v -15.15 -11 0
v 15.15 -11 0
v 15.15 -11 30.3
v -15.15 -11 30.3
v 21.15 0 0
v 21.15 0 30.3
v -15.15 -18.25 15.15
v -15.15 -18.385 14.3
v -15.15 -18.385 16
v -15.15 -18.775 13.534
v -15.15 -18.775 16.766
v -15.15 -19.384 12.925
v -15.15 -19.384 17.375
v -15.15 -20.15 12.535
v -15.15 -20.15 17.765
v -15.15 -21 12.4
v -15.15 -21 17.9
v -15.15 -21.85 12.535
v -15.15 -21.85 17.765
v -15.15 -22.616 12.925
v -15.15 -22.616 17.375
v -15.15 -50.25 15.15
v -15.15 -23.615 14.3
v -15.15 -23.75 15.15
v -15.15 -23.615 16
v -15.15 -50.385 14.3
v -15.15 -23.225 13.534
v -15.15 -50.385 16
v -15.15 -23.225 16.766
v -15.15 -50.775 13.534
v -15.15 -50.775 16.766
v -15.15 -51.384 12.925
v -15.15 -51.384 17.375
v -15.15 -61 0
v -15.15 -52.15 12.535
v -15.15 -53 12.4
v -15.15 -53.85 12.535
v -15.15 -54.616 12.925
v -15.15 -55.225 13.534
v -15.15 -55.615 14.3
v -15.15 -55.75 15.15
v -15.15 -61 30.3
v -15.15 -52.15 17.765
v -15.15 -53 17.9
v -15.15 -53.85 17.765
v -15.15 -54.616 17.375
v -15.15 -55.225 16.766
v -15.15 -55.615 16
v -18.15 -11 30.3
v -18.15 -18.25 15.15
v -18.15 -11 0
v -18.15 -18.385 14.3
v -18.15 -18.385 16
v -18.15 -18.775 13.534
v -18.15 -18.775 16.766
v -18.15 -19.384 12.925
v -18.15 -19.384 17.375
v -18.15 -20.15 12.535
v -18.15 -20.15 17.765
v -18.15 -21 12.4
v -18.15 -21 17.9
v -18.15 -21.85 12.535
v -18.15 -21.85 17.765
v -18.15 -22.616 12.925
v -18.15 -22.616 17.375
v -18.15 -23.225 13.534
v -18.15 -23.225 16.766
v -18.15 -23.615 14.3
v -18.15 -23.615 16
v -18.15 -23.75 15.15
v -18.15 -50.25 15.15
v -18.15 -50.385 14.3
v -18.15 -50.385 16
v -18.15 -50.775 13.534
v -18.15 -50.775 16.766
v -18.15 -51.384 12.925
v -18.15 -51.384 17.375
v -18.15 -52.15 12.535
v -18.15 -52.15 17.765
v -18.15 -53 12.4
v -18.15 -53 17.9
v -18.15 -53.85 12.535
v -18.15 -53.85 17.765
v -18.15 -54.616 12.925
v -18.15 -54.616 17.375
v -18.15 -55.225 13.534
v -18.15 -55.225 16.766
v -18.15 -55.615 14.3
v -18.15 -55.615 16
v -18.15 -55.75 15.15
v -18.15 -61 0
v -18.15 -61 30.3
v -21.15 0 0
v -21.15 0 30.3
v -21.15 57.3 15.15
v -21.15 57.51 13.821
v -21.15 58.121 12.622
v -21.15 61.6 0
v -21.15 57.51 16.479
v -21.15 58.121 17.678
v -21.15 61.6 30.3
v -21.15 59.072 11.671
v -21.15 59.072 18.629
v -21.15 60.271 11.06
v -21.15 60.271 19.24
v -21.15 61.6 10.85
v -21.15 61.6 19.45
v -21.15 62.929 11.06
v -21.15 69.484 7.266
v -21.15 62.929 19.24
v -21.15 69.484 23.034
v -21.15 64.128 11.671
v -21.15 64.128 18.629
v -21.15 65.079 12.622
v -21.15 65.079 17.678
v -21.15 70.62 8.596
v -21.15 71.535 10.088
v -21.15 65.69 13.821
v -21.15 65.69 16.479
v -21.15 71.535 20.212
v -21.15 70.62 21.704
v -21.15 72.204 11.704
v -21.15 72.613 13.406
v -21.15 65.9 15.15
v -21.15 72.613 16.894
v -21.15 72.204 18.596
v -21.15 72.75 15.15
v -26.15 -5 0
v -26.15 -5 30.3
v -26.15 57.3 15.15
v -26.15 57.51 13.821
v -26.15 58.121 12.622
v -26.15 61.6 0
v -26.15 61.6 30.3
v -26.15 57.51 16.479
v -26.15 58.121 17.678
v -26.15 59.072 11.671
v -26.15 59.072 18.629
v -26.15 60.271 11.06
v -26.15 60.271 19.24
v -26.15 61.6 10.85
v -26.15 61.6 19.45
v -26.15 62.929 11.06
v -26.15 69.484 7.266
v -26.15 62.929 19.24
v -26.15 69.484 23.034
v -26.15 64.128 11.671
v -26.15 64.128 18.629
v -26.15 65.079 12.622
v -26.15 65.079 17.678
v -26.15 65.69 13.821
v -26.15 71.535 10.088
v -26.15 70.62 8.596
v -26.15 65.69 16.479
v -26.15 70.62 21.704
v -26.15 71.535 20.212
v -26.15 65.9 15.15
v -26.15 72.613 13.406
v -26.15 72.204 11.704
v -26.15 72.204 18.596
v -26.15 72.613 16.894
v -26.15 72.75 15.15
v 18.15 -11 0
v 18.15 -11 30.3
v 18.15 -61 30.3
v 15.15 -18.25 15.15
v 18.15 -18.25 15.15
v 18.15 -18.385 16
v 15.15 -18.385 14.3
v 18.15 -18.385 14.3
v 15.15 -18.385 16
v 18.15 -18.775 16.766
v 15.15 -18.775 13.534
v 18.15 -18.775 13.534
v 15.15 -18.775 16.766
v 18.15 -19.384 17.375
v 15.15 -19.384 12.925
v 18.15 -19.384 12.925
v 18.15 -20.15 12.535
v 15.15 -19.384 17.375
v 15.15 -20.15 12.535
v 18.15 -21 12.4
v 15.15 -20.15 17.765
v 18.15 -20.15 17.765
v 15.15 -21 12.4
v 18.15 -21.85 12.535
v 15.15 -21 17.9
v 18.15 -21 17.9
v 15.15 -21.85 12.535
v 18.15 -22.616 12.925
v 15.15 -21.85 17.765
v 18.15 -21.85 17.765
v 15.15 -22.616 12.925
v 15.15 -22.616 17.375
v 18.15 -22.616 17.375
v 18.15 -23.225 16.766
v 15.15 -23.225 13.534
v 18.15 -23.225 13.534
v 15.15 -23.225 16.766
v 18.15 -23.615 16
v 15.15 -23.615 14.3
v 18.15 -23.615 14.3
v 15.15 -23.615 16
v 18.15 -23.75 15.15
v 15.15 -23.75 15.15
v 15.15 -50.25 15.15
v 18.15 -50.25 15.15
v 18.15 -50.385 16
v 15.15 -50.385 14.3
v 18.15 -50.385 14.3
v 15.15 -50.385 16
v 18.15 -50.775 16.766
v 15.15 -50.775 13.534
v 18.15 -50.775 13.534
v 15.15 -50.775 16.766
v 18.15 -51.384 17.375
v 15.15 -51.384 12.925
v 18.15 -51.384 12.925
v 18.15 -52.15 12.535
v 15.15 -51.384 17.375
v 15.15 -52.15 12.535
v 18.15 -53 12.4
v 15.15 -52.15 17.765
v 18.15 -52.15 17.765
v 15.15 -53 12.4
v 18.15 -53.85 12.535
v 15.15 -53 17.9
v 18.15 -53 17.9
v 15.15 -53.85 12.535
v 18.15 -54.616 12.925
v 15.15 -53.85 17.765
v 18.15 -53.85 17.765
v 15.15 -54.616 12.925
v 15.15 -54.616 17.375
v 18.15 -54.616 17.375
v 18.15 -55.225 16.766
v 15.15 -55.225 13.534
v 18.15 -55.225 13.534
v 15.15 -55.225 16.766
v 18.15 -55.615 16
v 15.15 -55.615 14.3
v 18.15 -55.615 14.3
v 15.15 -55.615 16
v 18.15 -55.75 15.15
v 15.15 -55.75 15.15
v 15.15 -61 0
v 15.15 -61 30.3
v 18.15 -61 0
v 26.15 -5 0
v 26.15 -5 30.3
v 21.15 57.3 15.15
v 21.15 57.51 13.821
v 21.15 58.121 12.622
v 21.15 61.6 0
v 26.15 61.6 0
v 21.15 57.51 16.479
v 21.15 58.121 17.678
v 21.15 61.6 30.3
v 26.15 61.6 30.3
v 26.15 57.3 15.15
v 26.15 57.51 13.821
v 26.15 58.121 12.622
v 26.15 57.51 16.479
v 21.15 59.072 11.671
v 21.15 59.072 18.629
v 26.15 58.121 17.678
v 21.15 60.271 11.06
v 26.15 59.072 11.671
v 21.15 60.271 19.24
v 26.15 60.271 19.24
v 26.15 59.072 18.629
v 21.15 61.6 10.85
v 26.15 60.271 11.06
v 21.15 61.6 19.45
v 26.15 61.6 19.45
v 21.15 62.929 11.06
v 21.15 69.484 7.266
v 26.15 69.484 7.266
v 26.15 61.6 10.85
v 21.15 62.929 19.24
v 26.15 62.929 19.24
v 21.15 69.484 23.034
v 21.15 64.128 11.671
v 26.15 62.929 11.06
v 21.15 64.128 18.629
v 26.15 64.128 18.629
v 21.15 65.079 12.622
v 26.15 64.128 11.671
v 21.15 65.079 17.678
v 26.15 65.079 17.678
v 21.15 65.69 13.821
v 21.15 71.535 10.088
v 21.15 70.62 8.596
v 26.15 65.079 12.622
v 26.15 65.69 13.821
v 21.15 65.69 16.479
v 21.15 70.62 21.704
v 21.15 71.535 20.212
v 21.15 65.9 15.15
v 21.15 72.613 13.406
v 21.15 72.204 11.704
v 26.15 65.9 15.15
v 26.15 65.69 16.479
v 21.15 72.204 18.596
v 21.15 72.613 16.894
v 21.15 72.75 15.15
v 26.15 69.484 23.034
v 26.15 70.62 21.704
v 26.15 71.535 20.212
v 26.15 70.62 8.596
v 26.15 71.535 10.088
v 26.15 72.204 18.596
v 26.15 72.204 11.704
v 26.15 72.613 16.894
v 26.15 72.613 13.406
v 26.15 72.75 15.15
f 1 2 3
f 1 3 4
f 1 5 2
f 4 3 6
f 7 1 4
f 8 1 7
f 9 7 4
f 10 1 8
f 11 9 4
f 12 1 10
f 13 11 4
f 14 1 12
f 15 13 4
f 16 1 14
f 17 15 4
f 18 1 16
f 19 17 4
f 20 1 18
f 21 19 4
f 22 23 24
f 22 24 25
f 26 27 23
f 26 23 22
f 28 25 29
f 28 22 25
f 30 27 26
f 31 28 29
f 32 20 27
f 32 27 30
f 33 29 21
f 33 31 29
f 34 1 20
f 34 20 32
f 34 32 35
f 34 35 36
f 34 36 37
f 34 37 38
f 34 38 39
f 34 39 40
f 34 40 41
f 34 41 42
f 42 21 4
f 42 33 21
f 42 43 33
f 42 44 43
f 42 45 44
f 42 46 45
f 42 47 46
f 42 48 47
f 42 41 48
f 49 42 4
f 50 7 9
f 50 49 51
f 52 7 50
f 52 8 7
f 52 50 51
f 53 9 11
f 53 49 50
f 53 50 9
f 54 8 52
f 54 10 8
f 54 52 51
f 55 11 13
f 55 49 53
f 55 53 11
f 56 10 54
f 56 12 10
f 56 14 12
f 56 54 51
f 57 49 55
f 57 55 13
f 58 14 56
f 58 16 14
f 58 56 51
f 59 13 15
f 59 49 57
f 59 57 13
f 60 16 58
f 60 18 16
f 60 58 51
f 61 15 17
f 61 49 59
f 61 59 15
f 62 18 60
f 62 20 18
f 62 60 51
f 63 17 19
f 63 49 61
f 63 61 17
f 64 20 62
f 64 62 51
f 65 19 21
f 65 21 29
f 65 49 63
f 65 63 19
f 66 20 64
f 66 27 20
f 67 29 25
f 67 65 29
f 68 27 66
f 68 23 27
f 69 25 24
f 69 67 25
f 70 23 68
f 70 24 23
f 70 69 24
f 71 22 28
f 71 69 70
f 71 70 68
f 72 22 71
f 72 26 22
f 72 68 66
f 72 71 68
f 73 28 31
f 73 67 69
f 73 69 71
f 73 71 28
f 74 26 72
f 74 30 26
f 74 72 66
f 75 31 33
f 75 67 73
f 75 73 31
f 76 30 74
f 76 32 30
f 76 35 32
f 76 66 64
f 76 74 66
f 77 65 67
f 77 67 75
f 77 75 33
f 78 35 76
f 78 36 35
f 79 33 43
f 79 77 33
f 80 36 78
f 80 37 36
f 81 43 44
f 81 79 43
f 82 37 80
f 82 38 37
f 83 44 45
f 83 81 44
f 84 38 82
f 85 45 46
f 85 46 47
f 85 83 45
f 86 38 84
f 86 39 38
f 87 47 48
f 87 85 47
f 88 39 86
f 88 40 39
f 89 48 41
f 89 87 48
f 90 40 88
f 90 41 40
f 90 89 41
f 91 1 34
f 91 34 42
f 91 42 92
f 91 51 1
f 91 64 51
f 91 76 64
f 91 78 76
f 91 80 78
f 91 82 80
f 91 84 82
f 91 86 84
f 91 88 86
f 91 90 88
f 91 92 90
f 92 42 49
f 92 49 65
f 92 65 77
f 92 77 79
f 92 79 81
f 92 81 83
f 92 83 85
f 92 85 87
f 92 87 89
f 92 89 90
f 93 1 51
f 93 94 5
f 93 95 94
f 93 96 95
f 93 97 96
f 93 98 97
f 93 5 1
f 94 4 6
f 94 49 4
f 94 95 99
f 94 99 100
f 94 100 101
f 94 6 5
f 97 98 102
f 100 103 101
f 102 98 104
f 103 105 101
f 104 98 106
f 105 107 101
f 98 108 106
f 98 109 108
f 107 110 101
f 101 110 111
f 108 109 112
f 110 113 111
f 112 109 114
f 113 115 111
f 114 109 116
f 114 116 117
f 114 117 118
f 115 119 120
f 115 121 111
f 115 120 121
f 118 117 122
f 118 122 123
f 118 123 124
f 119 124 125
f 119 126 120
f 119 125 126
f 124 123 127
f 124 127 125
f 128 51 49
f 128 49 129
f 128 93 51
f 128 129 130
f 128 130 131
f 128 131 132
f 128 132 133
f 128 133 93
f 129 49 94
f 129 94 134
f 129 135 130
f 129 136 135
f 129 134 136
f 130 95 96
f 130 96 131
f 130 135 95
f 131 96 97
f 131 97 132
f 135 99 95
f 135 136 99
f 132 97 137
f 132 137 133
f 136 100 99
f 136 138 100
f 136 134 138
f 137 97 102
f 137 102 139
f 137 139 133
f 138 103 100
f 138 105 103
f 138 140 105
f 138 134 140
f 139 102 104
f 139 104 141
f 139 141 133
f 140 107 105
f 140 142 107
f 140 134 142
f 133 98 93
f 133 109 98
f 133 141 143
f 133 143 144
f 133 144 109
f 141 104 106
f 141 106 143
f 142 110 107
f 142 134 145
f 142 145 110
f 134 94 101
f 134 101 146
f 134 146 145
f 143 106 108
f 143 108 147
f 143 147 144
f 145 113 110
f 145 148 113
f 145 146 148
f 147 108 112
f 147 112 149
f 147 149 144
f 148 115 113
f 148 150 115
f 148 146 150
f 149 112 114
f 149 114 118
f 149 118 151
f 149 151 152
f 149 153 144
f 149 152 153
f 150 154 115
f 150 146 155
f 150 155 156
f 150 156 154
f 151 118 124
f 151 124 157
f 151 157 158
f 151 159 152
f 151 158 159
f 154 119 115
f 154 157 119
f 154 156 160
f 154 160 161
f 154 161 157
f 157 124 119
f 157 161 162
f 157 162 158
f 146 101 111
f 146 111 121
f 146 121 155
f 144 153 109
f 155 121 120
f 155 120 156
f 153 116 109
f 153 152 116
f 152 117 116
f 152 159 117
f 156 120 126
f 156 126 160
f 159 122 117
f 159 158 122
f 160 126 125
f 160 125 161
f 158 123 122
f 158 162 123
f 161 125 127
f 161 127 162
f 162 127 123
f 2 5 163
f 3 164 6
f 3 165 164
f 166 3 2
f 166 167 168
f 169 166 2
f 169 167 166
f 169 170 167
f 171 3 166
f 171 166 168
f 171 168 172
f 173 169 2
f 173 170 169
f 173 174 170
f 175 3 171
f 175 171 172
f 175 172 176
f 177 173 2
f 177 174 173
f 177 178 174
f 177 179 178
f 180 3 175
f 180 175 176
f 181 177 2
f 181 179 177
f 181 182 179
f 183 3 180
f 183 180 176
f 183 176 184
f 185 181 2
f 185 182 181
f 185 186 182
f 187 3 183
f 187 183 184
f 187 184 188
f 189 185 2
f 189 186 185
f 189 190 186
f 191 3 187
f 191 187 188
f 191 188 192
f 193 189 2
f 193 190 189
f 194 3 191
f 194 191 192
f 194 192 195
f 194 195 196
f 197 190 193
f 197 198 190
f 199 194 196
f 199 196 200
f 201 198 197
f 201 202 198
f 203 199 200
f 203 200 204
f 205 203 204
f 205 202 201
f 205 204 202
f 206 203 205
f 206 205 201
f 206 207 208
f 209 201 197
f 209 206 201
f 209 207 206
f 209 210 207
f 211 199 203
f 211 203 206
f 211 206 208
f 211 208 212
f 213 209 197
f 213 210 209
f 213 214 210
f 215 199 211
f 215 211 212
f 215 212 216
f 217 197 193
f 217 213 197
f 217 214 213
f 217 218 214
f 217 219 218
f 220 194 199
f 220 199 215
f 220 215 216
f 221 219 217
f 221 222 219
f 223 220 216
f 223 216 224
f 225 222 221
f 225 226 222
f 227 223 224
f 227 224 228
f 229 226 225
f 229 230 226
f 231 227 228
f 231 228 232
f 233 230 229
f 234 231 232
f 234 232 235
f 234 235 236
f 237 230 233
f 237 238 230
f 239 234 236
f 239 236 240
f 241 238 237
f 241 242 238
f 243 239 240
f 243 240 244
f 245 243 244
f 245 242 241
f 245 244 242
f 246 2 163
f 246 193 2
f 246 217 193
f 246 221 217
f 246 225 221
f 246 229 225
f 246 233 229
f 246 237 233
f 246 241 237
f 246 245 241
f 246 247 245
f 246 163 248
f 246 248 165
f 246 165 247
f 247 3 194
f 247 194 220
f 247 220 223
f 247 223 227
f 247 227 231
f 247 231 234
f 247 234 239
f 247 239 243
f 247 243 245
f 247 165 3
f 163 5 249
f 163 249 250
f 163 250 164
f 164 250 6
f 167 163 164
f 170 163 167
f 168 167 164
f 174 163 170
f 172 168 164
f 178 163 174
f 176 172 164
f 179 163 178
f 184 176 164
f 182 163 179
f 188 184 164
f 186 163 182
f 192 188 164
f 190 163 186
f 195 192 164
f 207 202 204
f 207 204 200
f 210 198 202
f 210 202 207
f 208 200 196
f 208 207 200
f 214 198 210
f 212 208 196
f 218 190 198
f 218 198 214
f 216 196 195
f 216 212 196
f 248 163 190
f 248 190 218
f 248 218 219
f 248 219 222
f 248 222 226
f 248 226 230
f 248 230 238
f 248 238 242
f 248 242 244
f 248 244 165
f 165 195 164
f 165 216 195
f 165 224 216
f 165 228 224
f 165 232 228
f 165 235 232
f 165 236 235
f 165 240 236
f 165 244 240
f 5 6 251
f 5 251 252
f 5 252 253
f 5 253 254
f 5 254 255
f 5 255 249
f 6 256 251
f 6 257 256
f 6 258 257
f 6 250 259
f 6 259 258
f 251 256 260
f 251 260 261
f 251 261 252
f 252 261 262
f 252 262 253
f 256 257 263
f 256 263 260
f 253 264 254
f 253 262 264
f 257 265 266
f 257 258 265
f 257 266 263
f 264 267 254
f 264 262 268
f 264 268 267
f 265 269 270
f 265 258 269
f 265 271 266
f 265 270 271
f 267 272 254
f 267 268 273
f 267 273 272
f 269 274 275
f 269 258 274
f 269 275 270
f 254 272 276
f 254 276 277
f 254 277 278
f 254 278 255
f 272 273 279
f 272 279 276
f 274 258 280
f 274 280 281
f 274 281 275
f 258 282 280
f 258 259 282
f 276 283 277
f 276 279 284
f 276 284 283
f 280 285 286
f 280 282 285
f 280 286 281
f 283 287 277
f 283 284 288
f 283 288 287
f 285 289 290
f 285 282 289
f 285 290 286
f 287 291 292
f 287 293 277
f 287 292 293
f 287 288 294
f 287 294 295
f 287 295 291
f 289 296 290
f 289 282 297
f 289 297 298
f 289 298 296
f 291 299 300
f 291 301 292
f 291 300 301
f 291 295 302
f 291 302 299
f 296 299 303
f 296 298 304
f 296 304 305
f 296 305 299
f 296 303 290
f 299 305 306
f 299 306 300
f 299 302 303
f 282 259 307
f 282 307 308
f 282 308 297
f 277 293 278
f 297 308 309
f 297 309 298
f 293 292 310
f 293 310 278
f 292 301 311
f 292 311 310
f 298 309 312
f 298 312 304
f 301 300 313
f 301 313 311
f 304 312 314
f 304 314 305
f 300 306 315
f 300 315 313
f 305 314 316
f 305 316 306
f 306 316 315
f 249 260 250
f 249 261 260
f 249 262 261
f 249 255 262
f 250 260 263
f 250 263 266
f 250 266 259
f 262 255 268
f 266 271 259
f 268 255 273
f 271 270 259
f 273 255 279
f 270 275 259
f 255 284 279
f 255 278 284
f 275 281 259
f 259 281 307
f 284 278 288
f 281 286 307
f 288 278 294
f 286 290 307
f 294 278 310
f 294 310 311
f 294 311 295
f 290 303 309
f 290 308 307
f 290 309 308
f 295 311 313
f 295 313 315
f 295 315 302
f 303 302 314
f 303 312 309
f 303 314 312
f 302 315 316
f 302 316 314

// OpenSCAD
// file: ../lib/ALU_profile_holder_top.scad
include <../../parameters.scad>



module ALU_profile_holder_top(deep=35) {
    wall_thickness = ALU_profile_holder_wall_thickness;
    
    module screw_holes() {
        translate([wall_thickness/2, 8, ALU_profile_width/2]) {
            rotate([0, 90, 0]) 
                cylinder(d=M5_screw_diameter, h=wall_thickness*2, center=true, $fn=20);
        }
        translate([wall_thickness/2, deep-10, ALU_profile_width/2]) {
                rotate([0, 90, 0])
                cylinder(d=M5_screw_diameter, h=wall_thickness*2, center=true, $fn=20);
            
        }
    }
    
    difference() {
        cube([ALU_profile_width+wall_thickness*2, deep+wall_thickness*2, ALU_profile_width]);
        translate([wall_thickness, -0.1, -0.1])
            cube([ALU_profile_width, deep+0.1, ALU_profile_width+0.2]);
        
        screw_holes();
        translate([ALU_profile_width+wall_thickness, 0, 0])
            screw_holes();
    }
}

ALU_profile_holder_top(35);
// file: ../../parameters.scad
maximum_printable_size = 150;

layer_thickness = 0.3;
global_clearance = 0.5;

platform_base_diameter = 400; // Průměr ukotvení válců spodní platformy
platform_base_thickness = 20;
platform_cylinder_medium_length = 250;  // délka pneumatického válce s pístem vysunutým do poloviny rozsahu
platform_base_cylinder_spacing = 38;    //rozestupy spodního a horního ukotvení válců.
platform_top_cylinder_spacing = 30;
platform_top_diameter = 150;   // Průměr horní základny (vdálenost od středu základny do středu kulového kloubu ke kterému je uchycen pneumatický válec)


// screw length step - minimum difference in length between two types of screws
basic_screw_length = 5;


//Screw diameter and nut for M10 [mm]
M10_screw_diameter = 10.4;
M10_head_height = 10;
M10_head_diameter = 16+0.5;
M10_nut_height = 10.5;
M10_nut_diameter = 25.5;
M10_nut_pocket = 22.3;

//Screw diameter for M8 [mm]
M8_screw_diameter = 8.6;
M8_head_height = 8;
M8_head_diameter = 13.5;
M8_nut_height = 7.5;
M8_nut_diameter = 14.4 + 0.5;
M8_nut_pocket = 13 + 0.5;
M8_washer_diameter = 16;
M8_washer_thickness = 1.5;


//Screw diameter and nut for M6 [mm]
M6_screw_diameter=6.5;
M6_head_diameter = 10+0.5;
M6_head_height = 6;
M6_nut_height = 4.9;
M6_nut_diameter = 11.8;
M6_nut_pocket = 10.4;
M6_square_nut_height = 3;
M6_square_nut_diameter = 10;

//Screw diameter and nut for M5 [mm]
M5_screw_diameter=5.5;
M5_head_height = 5;
M5_head_diameter = 13+0.5;
M5_nut_height = 4.5;
M5_nut_diameter = 9.4;
M5_nut_pocket = 8.4;

//Screw diameter and nut for M4 [mm]
M4_screw_diameter=4.5;
M4_screw_head_height = 4;
M4_nut_height = 3.2;
M4_nut_diameter = 8.4;
M4_nut_pocket = 7.5;

//Screw diameter and nut for M3 [mm]
M3_screw_diameter = 3.2;
M3_nut_height = 2.7;
M3_nut_diameter = 6.6;
M3_screw_head_height = 3;

//Screw diameter and nut for M2,5 [mm]
M2_5_screw_diameter = 2.7;
M2_5_nut_height = 2.3;
M2_5_nut_diameter = 6;
M2_5_nut_pocket = 5.5;

// kulove lozisko

bearing_efsm_08_h = 33+1;
bearing_efsm_08_m = 22;
bearing_efsm_08_db = 18;
bearing_efsm_08_ag = 10.5;
bearing_efsm_08_n = M4_screw_diameter;
bearing_efsm_08_a1 = 5.5;
bearing_efsm_08_d = 8.25;
bearing_efsm_08_B = 8; // ball height

bearing_efsm_10_h = 38+1;
bearing_efsm_10_m = 26;
bearing_efsm_10_db = 21.9;
bearing_efsm_10_ag = 12+0.2;
bearing_efsm_10_n = M5_screw_diameter;
bearing_efsm_10_a1 = 6.5;
bearing_efsm_10_d = 10.25;


bearing_efsm_12_width = 40+1;
bearing_efsm_12_h = bearing_efsm_12_width;
bearing_efsm_12_boltd = 28/2; // polovina vzdalenosti mezi srouby
bearing_efsm_12_m = bearing_efsm_12_boltd*2;
bearing_efsm_12_db = 25;
bearing_efsm_12_ag = 13;
bearing_efsm_12_a1 = 7;
bearing_efsm_12_n = M5_screw_diameter;
bearing_efsm_12_d = 12.15;
bearing_efsm_12_B = 10; // ball height
bearing_efsm_space = 1;

bearing_efsm_17_width = 54+1;
bearing_efsm_17_h = bearing_efsm_17_width;
bearing_efsm_17_boltd = 38/2; // polovina vzdalenosti mezi srouby
bearing_efsm_17_m = bearing_efsm_17_boltd*2;
bearing_efsm_17_db = 35;
bearing_efsm_17_ag = 18;
bearing_efsm_17_n = M6_screw_diameter;
bearing_efsm_17_a1 = 10;
bearing_efsm_17_B = 17; // ball height

//limcove lozisko
bearing_EFOM_10_L=26; //celkova sirka zakladny
bearing_EFOM_10_d1=10.3;//diametr otvoru real=10 mm
bearing_EFOM_10_dB=22;//diametr vystupku pro ulozeni lozika
bearing_EFOM_10_H=52;//celková delka zakladny
bearing_EFOM_10_J=36;// hole pitch
bearing_EFOM_10_A1=6.5;//vyska pouzdra
bearing_EFOM_10_Ag=12;//celkova vyska
bearing_EFOM_10_N1=5;//sirka otvoru pro sroub
bearing_EFOM_10_N2=8;//delka otvoru pro sroub
bearing_EFOM_10_m=36;//roztec der pro sroub
bearing_EFOM_10_h=9;//vyska lozika


608_bearing_outer_diameter = 22.3;
608_bearing_inner_diameter = 16;
608_bearing_thickness = 7.1;


// 20 KG servo parameters

servo_20kg_axis_offset = 9.375; // jak je osa mimo stredu
servo_20kg_body_x = 42;
servo_20kg_body_y = 21;
servo_20kg_body_z = 40;
servo_20kg_thread_x = 49/2;
servo_20kg_thread_y = 10/2;
servo_20kg_body_below = 10; // jak hluboko je tělo serva pod drzaky na srouby
servo_20kg_below = 25.8; // jak hluboko je páka serva pod drzaky na srouby

servo_20kg_bolt_d = 2.5+0.3;
servo_20kg_nut_d = 5+0.3;


//strain gauge
strain_gauge_width = 12.7;
strain_gauge_length = 75.1;
strain_gauge_screw_distance = 10;

//ALU profile
ALU_profile_width = 30.3;
ALU_profile_holder_wall_thickness = 3;
ALU_profile_groove_width = 8;

//pillow block bearing
//https://www.igus.eu/product/372
//Part no. KSTM-08
KSTM08_screws_distance = 33;         //m
KSTM08_screws_holes_diameter = 4.5;  //d2
KSTM08_flange_thickness = 6;         //h3
KSTM08_case_width = 9;               //C1
KSTM08_case_length = 47;             //a
KSTM08_ball_width = 12;              //B


//ložiska pro malý rotor
bearing_outer_diameter = 10.2;    // Rozměr B1 v nákresu s přídavkem na toleranci otvoru
bearing_thickness = 4;        // Rozměr B2 v nákresu
//bearing_shaft_length = 19.5;    // Rozměr B3 v nákresu, Originalni hodnota 19.5
bearing_shaft_length = 20;    // Rozměr B3 v nákresu


//parametry víčka s telemetrickou anténou
S01_sila_materialu=1.2;
S01_vyska_horni_zavit=10;
S01_hloubka_zavitu=4;
S01_prumer_vnitrni=50;
LO_spodni_prumer=17.2;
LO_vyska_bez_krytu=15;
S01_tolerance_zavit=1.5;
R01_vyska_prekryti_statoru=10;
// main file
include <../../parameters.scad>
use <../lib/ALU_profile_holder_top.scad>

module 888_5011() {
    height = ALU_profile_width+608_bearing_outer_diameter-2+ALU_profile_holder_wall_thickness*2+5;

    translate([-ALU_profile_width/2-ALU_profile_holder_wall_thickness, -55-ALU_profile_holder_wall_thickness*2, 0])
        ALU_profile_holder_top(50);

    difference() {
        hull() {
            translate([(ALU_profile_width+ALU_profile_holder_wall_thickness*2+16)/-2, -5, 0])
                cube([ALU_profile_width+ALU_profile_holder_wall_thickness*2+16, height+5, ALU_profile_width]);

            translate([ALU_profile_width/-2-ALU_profile_holder_wall_thickness, -ALU_profile_holder_wall_thickness*2-5, 0])
                cube([ALU_profile_width+ALU_profile_holder_wall_thickness*2, ALU_profile_holder_wall_thickness*2, ALU_profile_width]);

            translate([0, height, ALU_profile_width/2])
                rotate([0, 90, 0])
                    cylinder(d=608_bearing_outer_diameter, h=ALU_profile_width+ALU_profile_holder_wall_thickness*2+16, center=true, $fn=40);
        }

        translate([(ALU_profile_width+ALU_profile_holder_wall_thickness*2+6)/-2, 0, -0.1])
            cube([ALU_profile_width+ALU_profile_holder_wall_thickness*2+6, height+608_bearing_outer_diameter/2, ALU_profile_width+0.2]);

        translate([0, height, ALU_profile_width/2])
            rotate([0, 90, 0])
                cylinder(d=M8_screw_diameter, h=ALU_profile_width*2, $fn=20, center=true);
    }
}
888_5011();
